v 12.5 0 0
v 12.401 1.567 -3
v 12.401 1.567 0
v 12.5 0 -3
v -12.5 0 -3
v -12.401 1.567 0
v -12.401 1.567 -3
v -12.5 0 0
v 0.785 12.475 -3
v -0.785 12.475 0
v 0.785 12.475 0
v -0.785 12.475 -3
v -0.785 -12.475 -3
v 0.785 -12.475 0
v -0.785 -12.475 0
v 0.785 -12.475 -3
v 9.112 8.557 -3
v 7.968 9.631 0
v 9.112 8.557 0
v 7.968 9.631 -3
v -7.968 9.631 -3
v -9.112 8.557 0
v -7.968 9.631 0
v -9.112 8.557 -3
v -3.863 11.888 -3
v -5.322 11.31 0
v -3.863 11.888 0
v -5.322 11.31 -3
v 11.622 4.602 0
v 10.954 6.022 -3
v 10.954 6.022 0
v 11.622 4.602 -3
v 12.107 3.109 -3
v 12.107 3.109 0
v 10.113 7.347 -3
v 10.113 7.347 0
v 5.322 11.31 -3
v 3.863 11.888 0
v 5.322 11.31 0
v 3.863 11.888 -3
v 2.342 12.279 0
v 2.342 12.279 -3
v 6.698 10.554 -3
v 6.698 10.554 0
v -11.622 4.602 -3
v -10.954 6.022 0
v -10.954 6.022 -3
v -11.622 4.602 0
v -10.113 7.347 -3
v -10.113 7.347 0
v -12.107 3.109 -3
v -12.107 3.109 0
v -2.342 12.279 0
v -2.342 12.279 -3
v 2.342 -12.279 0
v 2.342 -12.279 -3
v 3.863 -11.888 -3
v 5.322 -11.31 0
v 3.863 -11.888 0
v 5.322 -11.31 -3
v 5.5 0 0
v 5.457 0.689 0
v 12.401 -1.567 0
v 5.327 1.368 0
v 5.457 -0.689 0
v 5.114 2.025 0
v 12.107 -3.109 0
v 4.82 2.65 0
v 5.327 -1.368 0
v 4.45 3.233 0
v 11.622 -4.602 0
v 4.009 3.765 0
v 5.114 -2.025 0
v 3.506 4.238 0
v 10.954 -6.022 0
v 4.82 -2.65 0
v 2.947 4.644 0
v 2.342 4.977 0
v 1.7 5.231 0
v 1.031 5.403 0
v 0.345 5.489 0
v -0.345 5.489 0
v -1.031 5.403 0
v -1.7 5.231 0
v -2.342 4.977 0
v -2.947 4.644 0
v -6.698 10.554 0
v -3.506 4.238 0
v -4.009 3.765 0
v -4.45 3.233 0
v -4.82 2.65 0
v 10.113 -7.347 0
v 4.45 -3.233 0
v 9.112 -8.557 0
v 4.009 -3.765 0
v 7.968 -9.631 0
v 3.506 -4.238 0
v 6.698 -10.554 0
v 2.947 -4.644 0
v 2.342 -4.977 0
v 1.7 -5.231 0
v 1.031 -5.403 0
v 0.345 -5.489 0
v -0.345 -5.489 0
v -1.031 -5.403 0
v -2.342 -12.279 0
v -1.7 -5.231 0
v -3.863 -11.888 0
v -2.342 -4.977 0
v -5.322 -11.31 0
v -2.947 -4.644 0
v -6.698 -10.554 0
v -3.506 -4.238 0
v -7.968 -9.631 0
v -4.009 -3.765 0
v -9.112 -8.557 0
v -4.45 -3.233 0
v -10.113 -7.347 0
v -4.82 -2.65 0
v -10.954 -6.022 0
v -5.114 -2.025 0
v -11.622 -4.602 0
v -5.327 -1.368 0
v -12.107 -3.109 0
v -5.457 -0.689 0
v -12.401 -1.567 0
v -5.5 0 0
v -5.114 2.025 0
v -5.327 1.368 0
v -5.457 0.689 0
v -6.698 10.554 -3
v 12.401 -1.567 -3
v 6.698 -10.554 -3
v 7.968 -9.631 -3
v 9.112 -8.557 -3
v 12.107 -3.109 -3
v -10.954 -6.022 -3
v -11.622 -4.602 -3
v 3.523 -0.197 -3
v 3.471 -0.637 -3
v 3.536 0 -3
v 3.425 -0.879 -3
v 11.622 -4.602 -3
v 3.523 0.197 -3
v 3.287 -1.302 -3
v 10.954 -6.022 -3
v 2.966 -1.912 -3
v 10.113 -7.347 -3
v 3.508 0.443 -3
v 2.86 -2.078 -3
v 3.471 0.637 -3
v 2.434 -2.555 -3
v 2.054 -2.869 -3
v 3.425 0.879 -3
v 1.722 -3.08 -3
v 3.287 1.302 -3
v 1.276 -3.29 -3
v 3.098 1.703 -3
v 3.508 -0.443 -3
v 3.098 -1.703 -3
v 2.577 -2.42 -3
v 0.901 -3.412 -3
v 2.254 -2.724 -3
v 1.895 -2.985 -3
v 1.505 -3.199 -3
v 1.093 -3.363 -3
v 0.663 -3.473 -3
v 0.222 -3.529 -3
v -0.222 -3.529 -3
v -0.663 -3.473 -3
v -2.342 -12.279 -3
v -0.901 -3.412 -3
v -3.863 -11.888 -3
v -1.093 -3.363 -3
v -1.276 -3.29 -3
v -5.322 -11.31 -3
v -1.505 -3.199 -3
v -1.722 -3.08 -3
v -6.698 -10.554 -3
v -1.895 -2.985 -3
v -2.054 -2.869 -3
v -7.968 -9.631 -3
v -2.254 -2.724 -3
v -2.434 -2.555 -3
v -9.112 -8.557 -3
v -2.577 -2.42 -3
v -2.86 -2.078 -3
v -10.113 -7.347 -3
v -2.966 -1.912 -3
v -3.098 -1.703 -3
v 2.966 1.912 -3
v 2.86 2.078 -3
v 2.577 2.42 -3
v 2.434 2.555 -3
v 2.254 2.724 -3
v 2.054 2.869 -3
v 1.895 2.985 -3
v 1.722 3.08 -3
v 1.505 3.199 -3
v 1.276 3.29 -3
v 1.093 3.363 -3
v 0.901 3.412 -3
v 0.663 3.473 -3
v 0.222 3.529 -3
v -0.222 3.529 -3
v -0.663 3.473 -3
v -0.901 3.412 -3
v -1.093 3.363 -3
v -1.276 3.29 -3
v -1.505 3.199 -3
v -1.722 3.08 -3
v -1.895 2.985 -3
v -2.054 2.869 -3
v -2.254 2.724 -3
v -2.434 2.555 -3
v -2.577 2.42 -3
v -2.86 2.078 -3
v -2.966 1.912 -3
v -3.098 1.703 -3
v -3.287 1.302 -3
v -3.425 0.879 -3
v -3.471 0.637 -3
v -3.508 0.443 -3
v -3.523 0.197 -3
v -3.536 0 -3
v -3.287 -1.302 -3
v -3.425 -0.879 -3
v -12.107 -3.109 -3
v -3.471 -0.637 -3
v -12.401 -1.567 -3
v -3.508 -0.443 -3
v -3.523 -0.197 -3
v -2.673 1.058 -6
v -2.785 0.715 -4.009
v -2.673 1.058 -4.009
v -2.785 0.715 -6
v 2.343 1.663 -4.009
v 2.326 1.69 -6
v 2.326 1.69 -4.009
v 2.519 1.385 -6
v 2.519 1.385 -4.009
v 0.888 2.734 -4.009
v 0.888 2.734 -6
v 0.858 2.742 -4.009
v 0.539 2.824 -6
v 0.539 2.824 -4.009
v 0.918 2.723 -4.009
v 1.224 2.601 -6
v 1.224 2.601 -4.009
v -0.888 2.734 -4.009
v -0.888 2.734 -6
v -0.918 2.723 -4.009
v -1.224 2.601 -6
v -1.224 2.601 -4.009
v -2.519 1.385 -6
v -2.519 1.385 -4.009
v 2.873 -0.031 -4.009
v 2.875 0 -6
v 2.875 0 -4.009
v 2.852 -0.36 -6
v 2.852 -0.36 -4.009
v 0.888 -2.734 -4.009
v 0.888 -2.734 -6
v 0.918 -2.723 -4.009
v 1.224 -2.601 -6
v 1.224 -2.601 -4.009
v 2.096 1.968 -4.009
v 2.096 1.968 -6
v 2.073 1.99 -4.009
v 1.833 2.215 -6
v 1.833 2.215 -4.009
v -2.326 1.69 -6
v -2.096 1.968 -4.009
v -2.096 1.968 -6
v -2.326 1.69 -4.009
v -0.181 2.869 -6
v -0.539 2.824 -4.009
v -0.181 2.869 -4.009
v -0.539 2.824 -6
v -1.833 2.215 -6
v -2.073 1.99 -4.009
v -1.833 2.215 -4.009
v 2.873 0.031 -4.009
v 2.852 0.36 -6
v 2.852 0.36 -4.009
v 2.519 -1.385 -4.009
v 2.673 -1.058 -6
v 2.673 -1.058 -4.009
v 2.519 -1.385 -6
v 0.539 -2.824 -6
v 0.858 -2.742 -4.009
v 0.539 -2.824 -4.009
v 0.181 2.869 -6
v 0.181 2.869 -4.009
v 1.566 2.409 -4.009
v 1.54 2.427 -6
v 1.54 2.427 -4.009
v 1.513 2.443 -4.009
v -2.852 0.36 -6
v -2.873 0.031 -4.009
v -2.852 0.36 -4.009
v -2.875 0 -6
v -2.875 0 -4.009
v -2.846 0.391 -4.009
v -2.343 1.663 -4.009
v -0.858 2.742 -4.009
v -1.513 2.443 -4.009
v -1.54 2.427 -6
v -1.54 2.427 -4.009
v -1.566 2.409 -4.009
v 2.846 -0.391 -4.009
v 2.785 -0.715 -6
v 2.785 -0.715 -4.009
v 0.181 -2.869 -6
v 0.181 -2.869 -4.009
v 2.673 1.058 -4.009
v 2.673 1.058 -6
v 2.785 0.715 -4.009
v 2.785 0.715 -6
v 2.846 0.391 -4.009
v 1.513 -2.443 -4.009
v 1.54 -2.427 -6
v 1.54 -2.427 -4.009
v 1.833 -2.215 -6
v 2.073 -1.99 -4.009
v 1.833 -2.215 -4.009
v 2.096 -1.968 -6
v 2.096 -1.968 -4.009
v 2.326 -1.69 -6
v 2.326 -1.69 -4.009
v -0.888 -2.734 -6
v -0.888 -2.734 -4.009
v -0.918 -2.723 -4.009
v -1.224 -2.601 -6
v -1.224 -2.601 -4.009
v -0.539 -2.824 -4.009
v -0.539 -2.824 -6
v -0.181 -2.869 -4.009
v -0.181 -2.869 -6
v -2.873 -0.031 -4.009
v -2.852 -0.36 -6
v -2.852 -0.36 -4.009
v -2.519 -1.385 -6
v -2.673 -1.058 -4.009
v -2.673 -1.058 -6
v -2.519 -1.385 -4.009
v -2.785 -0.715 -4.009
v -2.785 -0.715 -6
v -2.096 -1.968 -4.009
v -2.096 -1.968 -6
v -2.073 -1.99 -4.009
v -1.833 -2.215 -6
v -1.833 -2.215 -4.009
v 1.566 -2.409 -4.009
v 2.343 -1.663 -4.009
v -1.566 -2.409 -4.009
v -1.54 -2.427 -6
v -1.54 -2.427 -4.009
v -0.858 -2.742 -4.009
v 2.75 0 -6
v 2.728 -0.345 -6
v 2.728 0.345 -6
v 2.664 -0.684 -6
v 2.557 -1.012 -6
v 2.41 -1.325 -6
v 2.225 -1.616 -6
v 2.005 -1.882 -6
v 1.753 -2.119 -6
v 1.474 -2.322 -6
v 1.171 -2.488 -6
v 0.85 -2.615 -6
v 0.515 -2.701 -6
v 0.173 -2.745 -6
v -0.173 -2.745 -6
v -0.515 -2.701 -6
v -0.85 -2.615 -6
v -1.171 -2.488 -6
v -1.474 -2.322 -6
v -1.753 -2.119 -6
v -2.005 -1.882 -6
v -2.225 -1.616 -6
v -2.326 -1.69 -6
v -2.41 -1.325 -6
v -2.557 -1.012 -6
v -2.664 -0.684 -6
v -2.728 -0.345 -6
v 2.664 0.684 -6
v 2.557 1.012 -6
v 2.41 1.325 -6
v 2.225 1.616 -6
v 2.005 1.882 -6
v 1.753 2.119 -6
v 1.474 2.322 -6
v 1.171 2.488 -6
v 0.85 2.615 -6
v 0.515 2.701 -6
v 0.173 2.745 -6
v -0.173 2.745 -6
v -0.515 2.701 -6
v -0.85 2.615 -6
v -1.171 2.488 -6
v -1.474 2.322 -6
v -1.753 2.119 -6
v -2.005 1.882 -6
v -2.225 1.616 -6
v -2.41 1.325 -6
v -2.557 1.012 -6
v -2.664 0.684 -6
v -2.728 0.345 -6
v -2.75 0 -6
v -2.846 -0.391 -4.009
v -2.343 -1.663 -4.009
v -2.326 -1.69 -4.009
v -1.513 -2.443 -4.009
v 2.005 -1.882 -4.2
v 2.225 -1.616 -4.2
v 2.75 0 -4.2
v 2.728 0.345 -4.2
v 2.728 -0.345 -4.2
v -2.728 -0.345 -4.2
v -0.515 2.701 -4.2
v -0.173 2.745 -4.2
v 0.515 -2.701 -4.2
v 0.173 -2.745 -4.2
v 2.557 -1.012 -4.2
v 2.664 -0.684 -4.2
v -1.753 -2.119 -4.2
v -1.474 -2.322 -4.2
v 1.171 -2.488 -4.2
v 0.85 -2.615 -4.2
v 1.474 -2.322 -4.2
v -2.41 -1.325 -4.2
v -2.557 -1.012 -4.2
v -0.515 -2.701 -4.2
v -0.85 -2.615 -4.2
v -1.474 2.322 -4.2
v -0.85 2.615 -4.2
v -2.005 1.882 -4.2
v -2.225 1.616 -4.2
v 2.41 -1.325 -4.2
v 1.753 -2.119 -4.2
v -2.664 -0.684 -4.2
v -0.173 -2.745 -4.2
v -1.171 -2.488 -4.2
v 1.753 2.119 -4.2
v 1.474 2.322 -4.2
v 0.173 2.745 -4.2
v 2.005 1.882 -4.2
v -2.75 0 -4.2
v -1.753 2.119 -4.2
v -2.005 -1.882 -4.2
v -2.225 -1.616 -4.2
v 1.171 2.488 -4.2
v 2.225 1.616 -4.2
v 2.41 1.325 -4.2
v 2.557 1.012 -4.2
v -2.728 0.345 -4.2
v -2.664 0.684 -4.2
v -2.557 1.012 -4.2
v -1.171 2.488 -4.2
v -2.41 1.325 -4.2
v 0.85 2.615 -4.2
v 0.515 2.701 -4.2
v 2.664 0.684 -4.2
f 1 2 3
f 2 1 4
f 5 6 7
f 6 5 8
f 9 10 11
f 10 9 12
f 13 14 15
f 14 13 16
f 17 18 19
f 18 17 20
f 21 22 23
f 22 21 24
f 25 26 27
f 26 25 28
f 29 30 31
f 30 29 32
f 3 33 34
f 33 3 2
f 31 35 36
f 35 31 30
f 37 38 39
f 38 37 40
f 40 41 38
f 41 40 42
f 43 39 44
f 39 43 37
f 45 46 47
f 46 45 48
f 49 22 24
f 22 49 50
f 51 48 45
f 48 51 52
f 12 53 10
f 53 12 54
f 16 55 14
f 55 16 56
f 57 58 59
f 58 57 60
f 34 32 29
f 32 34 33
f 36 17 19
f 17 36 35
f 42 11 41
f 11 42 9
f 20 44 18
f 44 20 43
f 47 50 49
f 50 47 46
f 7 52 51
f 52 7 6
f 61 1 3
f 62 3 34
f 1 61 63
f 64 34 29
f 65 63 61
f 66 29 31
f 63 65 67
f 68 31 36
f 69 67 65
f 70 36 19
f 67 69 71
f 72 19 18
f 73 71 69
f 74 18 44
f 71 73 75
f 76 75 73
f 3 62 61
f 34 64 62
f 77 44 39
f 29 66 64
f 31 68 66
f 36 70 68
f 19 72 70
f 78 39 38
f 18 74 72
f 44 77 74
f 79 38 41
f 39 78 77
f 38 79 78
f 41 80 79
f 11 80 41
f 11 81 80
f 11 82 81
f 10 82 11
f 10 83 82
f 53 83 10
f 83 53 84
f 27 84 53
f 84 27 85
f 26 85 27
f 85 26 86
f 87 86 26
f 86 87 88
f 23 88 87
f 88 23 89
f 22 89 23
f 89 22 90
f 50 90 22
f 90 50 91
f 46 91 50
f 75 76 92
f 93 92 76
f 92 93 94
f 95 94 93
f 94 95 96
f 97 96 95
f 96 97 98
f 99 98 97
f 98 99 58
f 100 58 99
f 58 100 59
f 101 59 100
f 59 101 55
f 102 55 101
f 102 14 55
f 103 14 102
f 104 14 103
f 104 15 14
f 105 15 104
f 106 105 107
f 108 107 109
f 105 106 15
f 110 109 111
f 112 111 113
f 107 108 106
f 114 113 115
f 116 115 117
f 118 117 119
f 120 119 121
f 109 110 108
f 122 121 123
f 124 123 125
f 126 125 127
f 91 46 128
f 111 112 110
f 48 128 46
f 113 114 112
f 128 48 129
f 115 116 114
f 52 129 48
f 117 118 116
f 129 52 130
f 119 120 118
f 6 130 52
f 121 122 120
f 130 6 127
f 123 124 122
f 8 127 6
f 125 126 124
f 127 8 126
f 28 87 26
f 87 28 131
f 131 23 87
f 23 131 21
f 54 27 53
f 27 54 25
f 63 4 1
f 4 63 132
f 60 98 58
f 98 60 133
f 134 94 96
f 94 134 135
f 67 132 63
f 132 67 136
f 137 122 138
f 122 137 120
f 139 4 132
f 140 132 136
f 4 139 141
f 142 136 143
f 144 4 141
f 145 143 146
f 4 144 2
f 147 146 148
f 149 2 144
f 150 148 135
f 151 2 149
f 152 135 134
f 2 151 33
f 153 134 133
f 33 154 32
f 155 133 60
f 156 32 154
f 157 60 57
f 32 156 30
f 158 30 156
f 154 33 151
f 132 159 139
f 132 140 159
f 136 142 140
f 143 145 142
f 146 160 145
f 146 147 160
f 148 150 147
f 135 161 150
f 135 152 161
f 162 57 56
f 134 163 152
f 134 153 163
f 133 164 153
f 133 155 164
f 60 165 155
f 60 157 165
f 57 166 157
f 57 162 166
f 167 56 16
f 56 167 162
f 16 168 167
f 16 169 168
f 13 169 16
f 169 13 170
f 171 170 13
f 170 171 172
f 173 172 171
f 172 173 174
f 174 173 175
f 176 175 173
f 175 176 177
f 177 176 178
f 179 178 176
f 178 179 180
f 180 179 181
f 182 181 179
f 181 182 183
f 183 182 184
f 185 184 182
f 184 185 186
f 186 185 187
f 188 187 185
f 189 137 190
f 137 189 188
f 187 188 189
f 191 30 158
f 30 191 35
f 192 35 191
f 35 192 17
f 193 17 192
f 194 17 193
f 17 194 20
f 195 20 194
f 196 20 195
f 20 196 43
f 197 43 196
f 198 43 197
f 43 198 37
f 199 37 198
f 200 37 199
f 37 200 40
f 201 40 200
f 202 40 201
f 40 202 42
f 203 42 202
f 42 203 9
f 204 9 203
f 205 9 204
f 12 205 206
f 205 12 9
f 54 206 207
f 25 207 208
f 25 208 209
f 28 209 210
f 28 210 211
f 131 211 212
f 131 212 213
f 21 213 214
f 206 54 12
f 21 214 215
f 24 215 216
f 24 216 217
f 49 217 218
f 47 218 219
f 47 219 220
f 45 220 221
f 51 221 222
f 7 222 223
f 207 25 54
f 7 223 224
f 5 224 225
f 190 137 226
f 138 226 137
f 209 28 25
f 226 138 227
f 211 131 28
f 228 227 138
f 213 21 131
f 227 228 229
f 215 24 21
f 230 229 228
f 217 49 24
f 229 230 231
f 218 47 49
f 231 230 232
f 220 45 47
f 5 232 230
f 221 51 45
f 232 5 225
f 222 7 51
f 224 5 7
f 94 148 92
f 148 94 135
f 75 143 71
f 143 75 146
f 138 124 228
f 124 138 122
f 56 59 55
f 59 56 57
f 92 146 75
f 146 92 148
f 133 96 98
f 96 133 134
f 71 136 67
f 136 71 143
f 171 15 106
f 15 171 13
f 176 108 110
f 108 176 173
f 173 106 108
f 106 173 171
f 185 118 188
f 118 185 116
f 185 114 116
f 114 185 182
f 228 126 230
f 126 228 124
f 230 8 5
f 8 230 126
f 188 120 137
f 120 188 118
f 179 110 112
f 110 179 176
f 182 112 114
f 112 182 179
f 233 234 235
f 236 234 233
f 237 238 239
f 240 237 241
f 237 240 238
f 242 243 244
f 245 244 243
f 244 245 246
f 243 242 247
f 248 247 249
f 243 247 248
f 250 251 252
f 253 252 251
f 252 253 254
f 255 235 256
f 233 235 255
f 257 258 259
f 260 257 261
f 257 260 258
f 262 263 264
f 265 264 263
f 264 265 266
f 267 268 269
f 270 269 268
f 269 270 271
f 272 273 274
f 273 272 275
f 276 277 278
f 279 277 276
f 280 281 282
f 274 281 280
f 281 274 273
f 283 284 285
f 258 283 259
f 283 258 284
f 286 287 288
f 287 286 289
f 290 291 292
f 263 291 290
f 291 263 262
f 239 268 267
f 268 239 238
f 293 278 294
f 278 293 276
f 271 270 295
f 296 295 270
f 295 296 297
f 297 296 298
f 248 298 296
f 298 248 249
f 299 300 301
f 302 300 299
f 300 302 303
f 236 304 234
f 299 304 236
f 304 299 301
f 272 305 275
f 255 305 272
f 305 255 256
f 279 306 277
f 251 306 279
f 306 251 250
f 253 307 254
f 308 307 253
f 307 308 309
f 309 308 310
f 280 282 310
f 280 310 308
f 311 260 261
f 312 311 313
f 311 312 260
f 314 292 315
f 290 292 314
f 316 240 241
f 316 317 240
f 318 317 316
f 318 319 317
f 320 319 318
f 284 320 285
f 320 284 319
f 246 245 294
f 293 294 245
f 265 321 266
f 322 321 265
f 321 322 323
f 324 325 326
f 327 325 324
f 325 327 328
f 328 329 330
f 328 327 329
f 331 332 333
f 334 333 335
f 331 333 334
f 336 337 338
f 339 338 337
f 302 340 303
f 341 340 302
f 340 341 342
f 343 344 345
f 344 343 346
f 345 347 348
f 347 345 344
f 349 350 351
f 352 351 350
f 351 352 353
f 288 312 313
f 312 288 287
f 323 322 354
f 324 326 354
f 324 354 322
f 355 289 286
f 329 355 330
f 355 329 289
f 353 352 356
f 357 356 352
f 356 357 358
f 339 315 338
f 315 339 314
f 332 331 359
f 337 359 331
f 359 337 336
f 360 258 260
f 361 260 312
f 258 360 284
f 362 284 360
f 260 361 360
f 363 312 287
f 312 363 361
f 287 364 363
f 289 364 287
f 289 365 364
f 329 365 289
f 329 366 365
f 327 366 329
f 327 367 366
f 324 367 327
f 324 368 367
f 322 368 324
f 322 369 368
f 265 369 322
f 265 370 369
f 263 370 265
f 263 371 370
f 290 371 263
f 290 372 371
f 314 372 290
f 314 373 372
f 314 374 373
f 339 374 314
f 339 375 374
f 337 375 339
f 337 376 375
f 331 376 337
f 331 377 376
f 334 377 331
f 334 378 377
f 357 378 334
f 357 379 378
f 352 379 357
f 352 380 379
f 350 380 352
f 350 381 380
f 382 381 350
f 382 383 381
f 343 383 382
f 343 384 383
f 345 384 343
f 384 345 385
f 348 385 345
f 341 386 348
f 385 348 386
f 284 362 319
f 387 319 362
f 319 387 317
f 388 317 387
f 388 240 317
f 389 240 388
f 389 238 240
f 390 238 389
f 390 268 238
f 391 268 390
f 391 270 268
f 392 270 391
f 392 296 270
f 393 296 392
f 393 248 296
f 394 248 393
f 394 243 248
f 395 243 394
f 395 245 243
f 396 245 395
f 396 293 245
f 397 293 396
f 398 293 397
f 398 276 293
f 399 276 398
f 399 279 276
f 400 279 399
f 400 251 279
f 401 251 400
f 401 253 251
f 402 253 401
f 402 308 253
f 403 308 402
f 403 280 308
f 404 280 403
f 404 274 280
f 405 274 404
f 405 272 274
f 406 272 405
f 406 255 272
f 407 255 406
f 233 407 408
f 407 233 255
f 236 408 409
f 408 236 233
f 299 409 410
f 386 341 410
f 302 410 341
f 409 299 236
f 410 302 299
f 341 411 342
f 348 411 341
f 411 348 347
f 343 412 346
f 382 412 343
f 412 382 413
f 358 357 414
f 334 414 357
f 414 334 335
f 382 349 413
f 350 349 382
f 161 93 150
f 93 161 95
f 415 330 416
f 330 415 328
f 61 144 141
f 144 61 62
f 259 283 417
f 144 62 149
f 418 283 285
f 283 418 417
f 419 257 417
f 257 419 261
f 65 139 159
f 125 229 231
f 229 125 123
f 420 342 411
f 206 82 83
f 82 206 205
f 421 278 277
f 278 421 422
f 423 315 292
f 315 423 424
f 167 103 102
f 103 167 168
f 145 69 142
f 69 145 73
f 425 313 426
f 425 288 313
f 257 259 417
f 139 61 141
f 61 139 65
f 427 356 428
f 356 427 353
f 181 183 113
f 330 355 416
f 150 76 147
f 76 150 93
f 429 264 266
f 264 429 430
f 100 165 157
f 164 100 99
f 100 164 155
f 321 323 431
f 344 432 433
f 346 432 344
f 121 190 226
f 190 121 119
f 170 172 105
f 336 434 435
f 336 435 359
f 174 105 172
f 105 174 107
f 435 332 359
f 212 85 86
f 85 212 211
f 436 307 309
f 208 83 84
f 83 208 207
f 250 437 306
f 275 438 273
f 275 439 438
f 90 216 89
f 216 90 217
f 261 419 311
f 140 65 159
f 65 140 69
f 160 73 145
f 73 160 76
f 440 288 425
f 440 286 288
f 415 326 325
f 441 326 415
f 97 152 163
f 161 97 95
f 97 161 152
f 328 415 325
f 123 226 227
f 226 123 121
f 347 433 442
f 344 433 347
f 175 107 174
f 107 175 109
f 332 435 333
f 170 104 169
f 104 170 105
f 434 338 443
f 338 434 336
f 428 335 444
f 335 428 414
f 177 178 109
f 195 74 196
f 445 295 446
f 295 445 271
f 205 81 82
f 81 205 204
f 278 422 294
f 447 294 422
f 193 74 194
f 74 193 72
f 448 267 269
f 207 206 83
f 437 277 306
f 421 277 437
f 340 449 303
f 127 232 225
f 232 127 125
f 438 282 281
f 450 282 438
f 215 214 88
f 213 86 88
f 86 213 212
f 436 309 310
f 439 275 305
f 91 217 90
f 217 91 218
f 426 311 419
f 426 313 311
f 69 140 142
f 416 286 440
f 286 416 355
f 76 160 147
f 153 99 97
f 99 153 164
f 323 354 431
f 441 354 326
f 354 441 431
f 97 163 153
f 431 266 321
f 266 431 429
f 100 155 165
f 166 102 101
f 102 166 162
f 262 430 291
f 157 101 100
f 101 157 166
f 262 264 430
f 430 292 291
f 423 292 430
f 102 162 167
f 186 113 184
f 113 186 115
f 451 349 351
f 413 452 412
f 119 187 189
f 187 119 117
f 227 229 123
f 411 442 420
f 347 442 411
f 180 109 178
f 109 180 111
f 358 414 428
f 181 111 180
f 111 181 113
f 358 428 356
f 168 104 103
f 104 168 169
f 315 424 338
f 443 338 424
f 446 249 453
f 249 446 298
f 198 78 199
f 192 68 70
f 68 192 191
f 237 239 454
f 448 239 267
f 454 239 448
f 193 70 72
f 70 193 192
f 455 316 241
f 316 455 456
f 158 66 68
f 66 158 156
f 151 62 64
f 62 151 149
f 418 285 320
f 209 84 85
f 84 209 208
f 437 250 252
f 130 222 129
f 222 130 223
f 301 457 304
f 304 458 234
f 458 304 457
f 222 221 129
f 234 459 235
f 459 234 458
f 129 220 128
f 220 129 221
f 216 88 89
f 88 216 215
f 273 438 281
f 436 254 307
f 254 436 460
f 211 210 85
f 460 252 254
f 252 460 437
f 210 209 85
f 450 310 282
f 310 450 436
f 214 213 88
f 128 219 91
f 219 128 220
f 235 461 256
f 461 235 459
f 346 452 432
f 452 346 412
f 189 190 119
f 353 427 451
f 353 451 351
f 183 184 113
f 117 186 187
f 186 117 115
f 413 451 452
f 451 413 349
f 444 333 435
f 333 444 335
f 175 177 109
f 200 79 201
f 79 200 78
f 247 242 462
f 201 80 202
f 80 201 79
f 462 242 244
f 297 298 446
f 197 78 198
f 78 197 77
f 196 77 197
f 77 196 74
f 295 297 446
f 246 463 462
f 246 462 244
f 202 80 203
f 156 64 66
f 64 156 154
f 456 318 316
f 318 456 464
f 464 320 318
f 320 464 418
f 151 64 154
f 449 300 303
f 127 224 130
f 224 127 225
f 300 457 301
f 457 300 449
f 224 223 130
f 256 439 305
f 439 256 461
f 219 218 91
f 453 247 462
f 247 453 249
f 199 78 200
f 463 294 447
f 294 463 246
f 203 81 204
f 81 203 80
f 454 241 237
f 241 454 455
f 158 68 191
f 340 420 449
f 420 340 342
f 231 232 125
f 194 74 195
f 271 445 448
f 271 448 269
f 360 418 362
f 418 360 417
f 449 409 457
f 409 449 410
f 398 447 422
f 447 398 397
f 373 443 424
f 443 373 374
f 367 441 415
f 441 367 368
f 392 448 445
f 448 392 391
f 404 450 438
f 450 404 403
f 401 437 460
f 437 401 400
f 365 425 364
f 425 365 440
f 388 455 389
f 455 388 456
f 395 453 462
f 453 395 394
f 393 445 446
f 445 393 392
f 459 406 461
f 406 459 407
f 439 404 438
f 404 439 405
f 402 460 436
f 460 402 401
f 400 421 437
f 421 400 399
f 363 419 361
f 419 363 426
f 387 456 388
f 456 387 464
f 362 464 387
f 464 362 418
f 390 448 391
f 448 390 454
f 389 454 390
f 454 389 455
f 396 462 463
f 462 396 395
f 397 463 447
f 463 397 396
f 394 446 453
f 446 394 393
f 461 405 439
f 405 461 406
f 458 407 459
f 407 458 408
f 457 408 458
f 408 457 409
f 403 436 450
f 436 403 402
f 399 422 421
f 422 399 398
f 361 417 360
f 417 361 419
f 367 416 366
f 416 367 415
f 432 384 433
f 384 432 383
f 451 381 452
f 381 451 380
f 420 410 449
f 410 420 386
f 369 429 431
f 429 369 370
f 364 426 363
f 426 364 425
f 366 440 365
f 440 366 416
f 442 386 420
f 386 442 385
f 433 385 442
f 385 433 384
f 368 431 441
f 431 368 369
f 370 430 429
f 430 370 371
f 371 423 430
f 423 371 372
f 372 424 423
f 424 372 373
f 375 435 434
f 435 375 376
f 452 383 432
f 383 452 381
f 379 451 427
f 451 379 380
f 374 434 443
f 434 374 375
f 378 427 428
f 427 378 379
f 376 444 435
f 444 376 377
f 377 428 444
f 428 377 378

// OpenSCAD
$fn = 50;


difference() {
	union() {
		translate(v = [0, 0, -3.0000000000]) {
			cylinder(h = 3, r = 12.5000000000);
		}
		#translate(v = [0, 0, -6.0000000000]) {
			cylinder(h = 6, r = 2.8750000000);
		}
	}
	union() {
		translate(v = [0, 0, 0]) {
			rotate(a = [0, 0, 0]) {
				difference() {
					union() {
						translate(v = [0, 0, -6.0000000000]) {
							cylinder(h = 6, r = 2.2500000000);
						}
						translate(v = [0, 0, -4.2000000000]) {
							cylinder(h = 4.2000000000, r1 = 2.7500000000, r2 = 5.5000000000);
						}
						translate(v = [0, 0, -6.0000000000]) {
							cylinder(h = 6, r = 2.7500000000);
						}
						translate(v = [0, 0, -6.0000000000]) {
							cylinder(h = 6, r = 2.2500000000);
						}
					}
					union();
				}
			}
		}
	}
}
